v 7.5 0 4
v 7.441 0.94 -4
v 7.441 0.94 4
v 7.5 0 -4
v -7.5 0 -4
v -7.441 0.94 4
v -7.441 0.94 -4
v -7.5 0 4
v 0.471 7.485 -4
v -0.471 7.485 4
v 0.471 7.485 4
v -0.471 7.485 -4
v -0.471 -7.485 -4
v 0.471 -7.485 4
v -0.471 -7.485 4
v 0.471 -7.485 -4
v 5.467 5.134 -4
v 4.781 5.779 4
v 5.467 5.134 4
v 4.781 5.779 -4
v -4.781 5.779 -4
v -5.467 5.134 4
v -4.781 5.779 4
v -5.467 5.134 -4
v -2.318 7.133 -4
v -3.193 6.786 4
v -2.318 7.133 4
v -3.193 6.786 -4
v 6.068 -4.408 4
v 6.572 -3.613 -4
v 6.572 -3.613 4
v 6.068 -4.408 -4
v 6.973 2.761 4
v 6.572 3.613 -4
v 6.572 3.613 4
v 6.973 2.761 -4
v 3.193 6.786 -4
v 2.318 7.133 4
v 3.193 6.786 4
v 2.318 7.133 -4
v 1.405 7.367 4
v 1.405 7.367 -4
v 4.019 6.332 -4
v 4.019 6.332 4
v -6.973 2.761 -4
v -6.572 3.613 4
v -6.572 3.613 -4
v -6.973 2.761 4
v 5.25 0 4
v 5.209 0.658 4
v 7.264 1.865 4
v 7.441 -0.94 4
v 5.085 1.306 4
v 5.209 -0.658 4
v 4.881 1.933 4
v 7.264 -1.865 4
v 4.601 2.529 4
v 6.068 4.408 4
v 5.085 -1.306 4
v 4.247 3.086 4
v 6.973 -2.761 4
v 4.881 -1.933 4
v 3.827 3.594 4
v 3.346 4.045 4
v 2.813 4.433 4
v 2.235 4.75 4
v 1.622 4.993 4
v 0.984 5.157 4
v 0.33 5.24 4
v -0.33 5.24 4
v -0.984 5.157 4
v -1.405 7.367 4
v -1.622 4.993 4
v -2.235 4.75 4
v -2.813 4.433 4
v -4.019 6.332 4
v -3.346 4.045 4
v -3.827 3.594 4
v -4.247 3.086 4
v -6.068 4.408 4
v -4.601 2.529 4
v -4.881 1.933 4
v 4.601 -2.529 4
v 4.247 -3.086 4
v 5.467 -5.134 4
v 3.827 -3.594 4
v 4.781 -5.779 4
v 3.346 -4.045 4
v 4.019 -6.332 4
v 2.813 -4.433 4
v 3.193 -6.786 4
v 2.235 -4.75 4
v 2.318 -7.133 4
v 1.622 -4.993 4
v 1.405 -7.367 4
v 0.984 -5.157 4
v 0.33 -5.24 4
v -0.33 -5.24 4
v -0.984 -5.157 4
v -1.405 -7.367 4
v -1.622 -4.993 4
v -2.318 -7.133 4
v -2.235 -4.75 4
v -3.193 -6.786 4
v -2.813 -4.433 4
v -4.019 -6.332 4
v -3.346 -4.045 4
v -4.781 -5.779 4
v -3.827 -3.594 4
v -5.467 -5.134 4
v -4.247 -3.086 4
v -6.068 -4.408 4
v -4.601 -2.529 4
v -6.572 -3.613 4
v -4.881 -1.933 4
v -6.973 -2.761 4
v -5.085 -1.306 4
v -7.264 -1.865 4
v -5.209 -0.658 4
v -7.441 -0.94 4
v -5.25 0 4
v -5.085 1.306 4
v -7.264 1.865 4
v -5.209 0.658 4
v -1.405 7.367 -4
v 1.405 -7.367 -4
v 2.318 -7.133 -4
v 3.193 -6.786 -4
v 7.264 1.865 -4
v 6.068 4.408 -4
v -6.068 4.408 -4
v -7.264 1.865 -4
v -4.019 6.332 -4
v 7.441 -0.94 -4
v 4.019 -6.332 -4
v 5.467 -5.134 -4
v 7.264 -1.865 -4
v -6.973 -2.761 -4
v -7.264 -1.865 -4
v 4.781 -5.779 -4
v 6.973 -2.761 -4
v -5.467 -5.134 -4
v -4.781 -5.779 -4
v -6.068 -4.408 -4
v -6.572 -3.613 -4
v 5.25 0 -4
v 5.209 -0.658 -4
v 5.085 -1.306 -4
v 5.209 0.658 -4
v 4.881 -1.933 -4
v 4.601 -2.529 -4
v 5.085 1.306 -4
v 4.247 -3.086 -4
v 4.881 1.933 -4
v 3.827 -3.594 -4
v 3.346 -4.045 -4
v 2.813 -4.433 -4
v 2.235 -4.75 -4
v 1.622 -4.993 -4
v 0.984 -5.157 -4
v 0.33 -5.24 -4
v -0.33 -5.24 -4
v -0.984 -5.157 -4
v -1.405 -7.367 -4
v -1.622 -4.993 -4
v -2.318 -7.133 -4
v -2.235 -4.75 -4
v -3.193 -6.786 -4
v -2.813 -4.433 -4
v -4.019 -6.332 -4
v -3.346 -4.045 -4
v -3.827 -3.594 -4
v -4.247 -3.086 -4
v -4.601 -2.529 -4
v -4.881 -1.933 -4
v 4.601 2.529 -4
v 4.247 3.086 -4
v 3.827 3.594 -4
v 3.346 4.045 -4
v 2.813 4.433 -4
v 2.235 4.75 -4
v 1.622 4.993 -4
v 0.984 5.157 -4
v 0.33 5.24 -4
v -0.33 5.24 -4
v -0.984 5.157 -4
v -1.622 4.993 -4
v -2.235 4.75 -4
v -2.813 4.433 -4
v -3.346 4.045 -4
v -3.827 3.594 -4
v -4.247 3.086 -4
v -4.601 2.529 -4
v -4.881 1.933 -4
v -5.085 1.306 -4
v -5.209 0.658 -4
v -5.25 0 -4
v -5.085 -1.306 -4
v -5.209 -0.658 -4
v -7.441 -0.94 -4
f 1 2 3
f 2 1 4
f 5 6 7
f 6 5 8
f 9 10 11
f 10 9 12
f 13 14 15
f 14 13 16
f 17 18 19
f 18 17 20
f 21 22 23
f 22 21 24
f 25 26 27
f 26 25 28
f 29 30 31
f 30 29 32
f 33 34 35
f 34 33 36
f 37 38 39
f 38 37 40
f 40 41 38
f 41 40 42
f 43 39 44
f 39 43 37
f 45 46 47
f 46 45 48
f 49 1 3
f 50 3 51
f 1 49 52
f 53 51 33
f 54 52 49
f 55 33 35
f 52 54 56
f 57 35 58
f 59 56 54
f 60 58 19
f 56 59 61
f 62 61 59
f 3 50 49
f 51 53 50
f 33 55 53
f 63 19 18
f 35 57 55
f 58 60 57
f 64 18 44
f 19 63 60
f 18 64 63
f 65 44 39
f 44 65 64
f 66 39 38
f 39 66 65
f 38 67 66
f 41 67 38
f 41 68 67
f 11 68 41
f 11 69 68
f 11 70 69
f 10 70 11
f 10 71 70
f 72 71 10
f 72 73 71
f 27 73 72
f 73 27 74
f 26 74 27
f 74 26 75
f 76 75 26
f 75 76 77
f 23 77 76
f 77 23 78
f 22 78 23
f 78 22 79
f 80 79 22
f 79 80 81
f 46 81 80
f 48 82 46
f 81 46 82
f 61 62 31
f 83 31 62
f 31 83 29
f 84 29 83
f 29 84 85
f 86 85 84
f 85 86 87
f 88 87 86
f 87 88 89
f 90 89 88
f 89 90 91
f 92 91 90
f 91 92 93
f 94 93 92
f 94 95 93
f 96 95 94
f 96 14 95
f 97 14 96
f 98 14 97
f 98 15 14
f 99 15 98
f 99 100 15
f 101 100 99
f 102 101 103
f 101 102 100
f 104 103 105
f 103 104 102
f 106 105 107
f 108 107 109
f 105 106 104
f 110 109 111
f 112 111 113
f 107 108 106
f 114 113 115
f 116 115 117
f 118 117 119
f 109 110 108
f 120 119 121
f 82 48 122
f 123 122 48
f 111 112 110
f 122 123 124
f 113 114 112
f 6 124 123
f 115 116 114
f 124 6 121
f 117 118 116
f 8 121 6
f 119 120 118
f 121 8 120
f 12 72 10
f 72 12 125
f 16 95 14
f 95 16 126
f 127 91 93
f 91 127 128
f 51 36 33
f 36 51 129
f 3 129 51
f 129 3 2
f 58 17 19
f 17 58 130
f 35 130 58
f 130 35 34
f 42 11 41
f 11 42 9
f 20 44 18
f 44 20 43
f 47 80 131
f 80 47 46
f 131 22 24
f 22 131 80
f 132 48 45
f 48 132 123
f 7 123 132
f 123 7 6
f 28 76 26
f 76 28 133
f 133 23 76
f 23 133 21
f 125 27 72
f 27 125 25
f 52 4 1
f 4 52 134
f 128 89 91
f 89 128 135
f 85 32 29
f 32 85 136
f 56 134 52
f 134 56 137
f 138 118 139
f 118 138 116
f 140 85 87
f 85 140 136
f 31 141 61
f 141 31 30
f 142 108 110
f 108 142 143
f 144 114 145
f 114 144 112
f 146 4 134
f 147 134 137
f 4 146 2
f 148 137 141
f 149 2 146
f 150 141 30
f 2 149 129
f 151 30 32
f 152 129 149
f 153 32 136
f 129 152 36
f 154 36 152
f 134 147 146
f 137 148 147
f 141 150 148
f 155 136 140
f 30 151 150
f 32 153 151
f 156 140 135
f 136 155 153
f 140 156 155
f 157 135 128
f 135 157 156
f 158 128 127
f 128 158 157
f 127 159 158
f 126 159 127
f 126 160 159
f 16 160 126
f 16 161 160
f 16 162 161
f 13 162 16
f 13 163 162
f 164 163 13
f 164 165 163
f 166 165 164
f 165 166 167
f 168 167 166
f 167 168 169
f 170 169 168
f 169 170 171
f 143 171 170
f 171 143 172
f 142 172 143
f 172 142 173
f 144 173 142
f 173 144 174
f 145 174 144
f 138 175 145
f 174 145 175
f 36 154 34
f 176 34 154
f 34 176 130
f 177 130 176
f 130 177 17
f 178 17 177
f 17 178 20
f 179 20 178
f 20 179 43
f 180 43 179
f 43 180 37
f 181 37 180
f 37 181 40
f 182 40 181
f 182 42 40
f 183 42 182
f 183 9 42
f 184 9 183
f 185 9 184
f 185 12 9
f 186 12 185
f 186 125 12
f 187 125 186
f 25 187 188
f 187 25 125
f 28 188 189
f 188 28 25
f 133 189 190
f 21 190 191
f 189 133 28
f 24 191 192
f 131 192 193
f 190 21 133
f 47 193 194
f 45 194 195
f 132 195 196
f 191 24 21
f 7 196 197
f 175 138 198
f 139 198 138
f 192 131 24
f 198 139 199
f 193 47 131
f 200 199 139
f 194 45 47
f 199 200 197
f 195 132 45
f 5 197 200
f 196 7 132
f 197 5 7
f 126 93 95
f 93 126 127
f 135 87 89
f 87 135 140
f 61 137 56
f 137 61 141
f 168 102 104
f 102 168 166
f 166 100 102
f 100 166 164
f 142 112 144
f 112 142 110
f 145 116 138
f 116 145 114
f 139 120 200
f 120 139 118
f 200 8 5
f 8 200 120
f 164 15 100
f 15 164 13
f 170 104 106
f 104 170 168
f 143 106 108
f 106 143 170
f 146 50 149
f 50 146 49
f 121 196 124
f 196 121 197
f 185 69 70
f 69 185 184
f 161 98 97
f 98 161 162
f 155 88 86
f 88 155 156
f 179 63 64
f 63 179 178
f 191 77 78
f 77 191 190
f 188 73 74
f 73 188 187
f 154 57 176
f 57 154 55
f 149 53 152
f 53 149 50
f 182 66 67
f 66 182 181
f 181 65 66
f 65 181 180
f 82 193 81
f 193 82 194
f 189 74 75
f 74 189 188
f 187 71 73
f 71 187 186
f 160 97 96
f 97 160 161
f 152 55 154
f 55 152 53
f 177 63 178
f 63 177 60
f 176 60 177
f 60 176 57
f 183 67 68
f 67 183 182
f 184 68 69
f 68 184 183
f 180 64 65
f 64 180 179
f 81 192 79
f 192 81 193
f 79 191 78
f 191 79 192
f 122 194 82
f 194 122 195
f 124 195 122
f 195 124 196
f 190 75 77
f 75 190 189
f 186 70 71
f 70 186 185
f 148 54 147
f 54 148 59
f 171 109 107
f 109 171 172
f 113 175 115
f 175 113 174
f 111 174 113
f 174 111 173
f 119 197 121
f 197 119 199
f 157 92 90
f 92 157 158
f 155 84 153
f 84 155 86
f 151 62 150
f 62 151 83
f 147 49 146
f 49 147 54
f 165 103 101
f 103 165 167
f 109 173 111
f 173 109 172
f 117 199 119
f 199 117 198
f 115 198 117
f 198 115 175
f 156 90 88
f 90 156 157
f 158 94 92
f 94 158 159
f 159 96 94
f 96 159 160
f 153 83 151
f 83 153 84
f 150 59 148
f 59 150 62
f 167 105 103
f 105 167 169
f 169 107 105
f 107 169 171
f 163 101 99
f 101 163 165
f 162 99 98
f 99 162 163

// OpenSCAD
$fn = 50;


difference() {
	union() {
		translate(v = [0, 0, -4.0000000000]) {
			cylinder(h = 8, r = 7.5000000000);
		}
	}
	union() {
		translate(v = [0, 0, -100.0000000000]) {
			cylinder(h = 200, r = 5.2500000000);
		}
	}
}
